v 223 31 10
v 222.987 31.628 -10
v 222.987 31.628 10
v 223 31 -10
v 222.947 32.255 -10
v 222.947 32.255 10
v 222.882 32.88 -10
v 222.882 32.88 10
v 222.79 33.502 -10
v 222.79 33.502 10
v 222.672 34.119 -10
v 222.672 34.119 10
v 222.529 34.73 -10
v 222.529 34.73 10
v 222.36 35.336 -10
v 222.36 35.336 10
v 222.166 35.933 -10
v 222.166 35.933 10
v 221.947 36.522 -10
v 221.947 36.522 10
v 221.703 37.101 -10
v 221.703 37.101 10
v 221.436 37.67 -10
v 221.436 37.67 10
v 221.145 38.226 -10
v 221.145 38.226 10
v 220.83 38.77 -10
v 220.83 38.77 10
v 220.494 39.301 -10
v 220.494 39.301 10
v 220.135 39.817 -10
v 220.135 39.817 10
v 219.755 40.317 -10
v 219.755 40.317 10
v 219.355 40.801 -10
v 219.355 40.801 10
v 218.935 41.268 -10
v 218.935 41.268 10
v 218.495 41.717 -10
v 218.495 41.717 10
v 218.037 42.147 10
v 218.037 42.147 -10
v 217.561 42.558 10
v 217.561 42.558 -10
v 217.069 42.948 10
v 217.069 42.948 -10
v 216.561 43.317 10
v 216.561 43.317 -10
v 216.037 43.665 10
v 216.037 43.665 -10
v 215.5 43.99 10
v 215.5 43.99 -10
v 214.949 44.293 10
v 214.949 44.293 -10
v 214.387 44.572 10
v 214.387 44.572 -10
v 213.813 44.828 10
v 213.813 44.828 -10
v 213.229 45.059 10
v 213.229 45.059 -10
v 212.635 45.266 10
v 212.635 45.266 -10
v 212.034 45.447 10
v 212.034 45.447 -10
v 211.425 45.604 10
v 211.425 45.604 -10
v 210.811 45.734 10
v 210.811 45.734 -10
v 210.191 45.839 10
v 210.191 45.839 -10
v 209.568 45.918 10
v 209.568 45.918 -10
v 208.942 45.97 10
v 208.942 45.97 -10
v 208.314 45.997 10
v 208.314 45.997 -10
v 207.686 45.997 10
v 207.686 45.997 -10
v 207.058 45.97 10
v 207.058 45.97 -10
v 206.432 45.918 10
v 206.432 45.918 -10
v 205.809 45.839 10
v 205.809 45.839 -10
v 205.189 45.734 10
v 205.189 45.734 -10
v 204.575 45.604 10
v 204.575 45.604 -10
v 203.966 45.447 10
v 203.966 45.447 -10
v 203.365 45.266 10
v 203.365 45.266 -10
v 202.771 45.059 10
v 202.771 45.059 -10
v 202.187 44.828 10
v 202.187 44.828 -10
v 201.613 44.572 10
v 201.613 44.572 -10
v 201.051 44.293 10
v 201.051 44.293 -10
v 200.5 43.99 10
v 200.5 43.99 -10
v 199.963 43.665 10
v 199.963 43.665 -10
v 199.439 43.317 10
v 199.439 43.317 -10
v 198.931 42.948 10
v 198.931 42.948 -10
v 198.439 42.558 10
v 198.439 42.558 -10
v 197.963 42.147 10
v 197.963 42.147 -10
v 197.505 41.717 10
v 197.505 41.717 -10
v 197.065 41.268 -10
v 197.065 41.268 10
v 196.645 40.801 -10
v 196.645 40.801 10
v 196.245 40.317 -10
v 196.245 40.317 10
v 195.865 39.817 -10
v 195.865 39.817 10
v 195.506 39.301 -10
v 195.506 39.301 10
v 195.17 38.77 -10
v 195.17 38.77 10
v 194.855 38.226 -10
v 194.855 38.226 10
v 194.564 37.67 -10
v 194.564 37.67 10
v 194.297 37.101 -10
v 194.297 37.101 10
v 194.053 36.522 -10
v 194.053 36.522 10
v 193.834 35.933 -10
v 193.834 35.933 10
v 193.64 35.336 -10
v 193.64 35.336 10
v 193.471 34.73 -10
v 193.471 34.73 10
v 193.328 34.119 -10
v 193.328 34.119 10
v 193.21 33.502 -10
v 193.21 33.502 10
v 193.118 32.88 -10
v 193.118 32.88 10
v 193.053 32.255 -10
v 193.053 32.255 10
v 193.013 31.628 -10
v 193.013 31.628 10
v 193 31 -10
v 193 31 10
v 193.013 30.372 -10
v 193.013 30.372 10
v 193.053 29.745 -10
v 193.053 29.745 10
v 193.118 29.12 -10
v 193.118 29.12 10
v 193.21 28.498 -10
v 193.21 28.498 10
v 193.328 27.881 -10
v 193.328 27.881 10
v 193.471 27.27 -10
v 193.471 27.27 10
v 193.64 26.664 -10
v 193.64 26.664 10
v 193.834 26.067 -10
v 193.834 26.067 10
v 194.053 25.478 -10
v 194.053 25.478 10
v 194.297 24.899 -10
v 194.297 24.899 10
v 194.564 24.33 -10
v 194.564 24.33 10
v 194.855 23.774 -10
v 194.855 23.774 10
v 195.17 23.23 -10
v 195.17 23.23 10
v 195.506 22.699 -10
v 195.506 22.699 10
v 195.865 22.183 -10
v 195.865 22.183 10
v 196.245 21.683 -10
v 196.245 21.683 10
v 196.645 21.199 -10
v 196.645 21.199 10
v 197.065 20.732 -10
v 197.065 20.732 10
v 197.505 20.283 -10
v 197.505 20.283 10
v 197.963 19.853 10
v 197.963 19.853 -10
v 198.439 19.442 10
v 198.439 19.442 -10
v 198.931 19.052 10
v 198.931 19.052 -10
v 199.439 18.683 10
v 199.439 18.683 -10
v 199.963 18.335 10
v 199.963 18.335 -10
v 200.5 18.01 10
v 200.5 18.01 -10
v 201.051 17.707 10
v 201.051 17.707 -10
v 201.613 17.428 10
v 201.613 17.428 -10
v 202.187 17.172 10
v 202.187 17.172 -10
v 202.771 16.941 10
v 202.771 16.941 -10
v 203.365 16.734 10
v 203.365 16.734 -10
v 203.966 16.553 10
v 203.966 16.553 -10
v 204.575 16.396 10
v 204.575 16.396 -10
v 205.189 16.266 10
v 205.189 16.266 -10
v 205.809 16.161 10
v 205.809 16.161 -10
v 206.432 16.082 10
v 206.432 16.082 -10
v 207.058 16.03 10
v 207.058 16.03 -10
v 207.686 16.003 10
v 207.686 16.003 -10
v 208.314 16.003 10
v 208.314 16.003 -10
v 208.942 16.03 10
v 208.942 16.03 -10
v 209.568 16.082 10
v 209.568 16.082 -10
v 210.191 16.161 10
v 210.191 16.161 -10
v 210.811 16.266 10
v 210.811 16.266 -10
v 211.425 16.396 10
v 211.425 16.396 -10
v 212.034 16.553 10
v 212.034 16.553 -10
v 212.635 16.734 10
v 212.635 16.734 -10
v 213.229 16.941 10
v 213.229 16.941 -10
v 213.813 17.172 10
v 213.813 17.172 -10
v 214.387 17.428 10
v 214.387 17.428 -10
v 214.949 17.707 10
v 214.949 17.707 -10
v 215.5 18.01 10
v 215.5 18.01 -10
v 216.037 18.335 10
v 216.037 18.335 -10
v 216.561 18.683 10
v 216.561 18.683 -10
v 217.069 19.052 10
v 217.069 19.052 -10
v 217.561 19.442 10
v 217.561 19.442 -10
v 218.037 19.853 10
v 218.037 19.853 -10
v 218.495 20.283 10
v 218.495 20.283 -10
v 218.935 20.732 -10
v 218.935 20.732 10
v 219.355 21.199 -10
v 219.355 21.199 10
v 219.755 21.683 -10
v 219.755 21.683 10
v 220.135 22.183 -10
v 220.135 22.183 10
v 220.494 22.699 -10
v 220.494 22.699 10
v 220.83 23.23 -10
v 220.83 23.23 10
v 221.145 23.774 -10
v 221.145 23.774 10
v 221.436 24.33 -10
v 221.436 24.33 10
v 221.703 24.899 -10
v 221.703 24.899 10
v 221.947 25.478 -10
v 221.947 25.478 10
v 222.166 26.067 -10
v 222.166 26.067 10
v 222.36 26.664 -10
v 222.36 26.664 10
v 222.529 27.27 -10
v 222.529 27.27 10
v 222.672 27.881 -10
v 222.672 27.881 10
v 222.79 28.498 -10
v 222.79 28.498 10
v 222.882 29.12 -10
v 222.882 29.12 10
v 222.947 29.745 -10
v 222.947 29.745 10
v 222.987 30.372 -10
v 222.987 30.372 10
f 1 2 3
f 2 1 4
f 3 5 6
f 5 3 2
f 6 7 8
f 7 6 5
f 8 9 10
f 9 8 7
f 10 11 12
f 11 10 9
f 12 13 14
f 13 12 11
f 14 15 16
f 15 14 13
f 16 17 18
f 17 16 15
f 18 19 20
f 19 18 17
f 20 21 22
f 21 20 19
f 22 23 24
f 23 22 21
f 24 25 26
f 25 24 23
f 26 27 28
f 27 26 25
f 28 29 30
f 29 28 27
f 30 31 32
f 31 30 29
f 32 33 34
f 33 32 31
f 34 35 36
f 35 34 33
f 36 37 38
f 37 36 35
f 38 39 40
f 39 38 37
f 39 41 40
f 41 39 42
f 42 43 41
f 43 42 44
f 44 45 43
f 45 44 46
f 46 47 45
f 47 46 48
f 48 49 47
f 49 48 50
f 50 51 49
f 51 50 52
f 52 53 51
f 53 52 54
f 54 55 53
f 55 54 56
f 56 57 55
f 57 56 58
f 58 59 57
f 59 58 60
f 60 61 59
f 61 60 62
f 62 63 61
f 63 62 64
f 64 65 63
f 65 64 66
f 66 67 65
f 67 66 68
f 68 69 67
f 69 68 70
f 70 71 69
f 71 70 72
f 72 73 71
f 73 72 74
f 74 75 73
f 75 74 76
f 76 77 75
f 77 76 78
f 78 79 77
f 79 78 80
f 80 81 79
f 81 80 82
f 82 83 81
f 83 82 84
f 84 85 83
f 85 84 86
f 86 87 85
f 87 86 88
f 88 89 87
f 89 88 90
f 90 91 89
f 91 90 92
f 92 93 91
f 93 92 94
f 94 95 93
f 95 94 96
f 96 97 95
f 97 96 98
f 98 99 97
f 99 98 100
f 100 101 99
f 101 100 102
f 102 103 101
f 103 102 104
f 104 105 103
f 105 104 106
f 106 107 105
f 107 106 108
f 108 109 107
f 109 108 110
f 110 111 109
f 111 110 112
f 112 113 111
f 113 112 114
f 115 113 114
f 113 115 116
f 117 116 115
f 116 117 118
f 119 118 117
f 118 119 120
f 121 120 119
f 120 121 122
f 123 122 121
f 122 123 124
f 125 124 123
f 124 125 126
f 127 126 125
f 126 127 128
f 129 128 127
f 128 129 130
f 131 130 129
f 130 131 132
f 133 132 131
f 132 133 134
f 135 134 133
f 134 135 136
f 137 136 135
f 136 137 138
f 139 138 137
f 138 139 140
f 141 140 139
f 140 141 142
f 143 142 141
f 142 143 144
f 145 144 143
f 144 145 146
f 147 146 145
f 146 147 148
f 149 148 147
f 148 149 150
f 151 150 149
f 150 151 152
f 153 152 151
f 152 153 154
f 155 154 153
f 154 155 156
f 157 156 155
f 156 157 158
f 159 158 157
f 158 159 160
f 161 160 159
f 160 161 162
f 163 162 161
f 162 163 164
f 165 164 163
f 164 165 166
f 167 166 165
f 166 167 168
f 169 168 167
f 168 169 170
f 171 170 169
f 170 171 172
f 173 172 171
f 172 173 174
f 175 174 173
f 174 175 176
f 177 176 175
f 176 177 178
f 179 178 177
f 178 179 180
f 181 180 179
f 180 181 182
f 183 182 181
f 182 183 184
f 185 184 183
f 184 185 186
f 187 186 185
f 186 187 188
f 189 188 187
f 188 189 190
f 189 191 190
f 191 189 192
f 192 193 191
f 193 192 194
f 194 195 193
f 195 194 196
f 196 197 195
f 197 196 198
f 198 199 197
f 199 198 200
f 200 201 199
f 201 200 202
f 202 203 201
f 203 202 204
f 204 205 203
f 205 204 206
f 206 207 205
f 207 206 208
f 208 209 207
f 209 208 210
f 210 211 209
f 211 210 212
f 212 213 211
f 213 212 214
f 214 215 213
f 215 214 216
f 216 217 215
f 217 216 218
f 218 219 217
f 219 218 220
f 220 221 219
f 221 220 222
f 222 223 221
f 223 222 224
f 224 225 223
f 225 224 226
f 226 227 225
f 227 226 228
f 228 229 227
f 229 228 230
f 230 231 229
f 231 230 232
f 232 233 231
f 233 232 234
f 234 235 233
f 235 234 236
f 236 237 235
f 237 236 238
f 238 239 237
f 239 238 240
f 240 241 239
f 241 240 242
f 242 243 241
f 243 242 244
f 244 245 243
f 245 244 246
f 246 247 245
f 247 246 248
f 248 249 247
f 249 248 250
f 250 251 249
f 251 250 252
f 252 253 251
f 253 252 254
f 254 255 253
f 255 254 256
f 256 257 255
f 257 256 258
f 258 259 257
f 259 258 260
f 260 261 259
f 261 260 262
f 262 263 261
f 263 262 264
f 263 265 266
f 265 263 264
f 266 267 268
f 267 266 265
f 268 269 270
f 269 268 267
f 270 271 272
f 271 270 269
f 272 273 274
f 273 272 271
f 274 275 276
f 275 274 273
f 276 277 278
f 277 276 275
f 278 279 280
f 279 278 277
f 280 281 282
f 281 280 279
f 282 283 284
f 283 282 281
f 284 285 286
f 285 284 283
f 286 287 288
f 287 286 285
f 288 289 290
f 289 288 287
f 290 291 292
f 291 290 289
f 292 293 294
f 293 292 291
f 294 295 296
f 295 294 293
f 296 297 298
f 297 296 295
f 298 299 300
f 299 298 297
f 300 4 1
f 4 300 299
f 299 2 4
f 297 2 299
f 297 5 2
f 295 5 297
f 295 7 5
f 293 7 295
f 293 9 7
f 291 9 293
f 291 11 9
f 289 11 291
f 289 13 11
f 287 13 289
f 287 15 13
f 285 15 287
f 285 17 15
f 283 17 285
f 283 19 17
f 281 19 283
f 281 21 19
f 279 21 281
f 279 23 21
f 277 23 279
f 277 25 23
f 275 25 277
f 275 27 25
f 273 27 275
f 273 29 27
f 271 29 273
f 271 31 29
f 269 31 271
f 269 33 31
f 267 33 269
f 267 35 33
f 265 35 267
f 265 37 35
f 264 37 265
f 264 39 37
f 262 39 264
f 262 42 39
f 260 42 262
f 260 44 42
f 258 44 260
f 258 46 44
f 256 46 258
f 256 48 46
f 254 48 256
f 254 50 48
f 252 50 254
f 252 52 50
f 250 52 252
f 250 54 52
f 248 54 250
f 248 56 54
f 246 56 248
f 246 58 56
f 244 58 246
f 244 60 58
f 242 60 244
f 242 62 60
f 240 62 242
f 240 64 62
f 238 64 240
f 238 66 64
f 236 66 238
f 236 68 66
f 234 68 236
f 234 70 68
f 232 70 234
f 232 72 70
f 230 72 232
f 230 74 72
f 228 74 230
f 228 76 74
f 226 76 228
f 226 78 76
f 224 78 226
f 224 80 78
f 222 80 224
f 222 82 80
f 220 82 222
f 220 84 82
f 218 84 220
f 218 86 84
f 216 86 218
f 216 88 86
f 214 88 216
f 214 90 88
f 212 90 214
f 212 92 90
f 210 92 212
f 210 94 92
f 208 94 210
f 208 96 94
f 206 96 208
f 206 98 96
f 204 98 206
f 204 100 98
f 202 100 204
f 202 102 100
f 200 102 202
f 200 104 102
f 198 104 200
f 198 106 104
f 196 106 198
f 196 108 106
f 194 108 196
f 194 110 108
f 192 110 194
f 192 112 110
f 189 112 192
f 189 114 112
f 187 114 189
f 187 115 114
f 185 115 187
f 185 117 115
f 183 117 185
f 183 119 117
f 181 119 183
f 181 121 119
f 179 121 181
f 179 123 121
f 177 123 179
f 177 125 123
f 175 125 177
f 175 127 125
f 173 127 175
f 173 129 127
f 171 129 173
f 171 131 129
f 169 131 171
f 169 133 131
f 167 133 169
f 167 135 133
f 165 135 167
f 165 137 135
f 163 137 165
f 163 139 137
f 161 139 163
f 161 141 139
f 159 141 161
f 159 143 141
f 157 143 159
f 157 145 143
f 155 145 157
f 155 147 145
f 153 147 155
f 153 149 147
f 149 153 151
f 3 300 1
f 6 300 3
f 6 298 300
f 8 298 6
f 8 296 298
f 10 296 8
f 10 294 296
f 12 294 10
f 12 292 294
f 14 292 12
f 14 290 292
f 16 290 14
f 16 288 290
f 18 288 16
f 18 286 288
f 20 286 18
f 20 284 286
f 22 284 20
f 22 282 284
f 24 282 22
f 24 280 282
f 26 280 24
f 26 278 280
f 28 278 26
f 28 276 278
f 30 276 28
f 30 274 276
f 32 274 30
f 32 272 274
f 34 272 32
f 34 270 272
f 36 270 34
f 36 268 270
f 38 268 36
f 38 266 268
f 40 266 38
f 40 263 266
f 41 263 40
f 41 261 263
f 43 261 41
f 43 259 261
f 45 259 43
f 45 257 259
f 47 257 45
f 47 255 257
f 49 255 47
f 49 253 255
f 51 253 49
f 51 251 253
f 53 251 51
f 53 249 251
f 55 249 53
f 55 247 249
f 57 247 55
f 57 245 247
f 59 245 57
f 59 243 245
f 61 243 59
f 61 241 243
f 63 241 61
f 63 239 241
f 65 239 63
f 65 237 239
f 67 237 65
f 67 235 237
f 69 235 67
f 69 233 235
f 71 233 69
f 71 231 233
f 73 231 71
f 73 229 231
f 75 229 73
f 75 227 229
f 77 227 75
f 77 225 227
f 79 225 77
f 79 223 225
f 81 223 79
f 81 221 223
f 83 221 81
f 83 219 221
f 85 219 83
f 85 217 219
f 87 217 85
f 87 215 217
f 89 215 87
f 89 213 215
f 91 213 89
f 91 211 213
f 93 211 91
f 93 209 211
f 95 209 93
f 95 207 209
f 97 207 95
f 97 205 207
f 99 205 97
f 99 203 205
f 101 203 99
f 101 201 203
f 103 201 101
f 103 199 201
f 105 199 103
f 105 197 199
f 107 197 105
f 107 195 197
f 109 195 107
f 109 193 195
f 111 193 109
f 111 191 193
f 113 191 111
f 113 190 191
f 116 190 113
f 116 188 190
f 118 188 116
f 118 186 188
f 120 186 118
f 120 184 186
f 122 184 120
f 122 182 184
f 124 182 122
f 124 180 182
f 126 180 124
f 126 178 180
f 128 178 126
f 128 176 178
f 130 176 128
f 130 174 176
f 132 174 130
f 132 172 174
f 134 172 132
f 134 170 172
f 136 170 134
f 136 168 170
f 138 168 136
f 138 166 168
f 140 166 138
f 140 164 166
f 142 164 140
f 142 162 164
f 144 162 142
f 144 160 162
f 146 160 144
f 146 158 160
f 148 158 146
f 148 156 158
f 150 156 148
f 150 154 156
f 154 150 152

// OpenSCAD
$fn = 150;

translate([208, 31, 0])
rotate([0, 0, 0])
cylinder(20, 15, 15, true);
